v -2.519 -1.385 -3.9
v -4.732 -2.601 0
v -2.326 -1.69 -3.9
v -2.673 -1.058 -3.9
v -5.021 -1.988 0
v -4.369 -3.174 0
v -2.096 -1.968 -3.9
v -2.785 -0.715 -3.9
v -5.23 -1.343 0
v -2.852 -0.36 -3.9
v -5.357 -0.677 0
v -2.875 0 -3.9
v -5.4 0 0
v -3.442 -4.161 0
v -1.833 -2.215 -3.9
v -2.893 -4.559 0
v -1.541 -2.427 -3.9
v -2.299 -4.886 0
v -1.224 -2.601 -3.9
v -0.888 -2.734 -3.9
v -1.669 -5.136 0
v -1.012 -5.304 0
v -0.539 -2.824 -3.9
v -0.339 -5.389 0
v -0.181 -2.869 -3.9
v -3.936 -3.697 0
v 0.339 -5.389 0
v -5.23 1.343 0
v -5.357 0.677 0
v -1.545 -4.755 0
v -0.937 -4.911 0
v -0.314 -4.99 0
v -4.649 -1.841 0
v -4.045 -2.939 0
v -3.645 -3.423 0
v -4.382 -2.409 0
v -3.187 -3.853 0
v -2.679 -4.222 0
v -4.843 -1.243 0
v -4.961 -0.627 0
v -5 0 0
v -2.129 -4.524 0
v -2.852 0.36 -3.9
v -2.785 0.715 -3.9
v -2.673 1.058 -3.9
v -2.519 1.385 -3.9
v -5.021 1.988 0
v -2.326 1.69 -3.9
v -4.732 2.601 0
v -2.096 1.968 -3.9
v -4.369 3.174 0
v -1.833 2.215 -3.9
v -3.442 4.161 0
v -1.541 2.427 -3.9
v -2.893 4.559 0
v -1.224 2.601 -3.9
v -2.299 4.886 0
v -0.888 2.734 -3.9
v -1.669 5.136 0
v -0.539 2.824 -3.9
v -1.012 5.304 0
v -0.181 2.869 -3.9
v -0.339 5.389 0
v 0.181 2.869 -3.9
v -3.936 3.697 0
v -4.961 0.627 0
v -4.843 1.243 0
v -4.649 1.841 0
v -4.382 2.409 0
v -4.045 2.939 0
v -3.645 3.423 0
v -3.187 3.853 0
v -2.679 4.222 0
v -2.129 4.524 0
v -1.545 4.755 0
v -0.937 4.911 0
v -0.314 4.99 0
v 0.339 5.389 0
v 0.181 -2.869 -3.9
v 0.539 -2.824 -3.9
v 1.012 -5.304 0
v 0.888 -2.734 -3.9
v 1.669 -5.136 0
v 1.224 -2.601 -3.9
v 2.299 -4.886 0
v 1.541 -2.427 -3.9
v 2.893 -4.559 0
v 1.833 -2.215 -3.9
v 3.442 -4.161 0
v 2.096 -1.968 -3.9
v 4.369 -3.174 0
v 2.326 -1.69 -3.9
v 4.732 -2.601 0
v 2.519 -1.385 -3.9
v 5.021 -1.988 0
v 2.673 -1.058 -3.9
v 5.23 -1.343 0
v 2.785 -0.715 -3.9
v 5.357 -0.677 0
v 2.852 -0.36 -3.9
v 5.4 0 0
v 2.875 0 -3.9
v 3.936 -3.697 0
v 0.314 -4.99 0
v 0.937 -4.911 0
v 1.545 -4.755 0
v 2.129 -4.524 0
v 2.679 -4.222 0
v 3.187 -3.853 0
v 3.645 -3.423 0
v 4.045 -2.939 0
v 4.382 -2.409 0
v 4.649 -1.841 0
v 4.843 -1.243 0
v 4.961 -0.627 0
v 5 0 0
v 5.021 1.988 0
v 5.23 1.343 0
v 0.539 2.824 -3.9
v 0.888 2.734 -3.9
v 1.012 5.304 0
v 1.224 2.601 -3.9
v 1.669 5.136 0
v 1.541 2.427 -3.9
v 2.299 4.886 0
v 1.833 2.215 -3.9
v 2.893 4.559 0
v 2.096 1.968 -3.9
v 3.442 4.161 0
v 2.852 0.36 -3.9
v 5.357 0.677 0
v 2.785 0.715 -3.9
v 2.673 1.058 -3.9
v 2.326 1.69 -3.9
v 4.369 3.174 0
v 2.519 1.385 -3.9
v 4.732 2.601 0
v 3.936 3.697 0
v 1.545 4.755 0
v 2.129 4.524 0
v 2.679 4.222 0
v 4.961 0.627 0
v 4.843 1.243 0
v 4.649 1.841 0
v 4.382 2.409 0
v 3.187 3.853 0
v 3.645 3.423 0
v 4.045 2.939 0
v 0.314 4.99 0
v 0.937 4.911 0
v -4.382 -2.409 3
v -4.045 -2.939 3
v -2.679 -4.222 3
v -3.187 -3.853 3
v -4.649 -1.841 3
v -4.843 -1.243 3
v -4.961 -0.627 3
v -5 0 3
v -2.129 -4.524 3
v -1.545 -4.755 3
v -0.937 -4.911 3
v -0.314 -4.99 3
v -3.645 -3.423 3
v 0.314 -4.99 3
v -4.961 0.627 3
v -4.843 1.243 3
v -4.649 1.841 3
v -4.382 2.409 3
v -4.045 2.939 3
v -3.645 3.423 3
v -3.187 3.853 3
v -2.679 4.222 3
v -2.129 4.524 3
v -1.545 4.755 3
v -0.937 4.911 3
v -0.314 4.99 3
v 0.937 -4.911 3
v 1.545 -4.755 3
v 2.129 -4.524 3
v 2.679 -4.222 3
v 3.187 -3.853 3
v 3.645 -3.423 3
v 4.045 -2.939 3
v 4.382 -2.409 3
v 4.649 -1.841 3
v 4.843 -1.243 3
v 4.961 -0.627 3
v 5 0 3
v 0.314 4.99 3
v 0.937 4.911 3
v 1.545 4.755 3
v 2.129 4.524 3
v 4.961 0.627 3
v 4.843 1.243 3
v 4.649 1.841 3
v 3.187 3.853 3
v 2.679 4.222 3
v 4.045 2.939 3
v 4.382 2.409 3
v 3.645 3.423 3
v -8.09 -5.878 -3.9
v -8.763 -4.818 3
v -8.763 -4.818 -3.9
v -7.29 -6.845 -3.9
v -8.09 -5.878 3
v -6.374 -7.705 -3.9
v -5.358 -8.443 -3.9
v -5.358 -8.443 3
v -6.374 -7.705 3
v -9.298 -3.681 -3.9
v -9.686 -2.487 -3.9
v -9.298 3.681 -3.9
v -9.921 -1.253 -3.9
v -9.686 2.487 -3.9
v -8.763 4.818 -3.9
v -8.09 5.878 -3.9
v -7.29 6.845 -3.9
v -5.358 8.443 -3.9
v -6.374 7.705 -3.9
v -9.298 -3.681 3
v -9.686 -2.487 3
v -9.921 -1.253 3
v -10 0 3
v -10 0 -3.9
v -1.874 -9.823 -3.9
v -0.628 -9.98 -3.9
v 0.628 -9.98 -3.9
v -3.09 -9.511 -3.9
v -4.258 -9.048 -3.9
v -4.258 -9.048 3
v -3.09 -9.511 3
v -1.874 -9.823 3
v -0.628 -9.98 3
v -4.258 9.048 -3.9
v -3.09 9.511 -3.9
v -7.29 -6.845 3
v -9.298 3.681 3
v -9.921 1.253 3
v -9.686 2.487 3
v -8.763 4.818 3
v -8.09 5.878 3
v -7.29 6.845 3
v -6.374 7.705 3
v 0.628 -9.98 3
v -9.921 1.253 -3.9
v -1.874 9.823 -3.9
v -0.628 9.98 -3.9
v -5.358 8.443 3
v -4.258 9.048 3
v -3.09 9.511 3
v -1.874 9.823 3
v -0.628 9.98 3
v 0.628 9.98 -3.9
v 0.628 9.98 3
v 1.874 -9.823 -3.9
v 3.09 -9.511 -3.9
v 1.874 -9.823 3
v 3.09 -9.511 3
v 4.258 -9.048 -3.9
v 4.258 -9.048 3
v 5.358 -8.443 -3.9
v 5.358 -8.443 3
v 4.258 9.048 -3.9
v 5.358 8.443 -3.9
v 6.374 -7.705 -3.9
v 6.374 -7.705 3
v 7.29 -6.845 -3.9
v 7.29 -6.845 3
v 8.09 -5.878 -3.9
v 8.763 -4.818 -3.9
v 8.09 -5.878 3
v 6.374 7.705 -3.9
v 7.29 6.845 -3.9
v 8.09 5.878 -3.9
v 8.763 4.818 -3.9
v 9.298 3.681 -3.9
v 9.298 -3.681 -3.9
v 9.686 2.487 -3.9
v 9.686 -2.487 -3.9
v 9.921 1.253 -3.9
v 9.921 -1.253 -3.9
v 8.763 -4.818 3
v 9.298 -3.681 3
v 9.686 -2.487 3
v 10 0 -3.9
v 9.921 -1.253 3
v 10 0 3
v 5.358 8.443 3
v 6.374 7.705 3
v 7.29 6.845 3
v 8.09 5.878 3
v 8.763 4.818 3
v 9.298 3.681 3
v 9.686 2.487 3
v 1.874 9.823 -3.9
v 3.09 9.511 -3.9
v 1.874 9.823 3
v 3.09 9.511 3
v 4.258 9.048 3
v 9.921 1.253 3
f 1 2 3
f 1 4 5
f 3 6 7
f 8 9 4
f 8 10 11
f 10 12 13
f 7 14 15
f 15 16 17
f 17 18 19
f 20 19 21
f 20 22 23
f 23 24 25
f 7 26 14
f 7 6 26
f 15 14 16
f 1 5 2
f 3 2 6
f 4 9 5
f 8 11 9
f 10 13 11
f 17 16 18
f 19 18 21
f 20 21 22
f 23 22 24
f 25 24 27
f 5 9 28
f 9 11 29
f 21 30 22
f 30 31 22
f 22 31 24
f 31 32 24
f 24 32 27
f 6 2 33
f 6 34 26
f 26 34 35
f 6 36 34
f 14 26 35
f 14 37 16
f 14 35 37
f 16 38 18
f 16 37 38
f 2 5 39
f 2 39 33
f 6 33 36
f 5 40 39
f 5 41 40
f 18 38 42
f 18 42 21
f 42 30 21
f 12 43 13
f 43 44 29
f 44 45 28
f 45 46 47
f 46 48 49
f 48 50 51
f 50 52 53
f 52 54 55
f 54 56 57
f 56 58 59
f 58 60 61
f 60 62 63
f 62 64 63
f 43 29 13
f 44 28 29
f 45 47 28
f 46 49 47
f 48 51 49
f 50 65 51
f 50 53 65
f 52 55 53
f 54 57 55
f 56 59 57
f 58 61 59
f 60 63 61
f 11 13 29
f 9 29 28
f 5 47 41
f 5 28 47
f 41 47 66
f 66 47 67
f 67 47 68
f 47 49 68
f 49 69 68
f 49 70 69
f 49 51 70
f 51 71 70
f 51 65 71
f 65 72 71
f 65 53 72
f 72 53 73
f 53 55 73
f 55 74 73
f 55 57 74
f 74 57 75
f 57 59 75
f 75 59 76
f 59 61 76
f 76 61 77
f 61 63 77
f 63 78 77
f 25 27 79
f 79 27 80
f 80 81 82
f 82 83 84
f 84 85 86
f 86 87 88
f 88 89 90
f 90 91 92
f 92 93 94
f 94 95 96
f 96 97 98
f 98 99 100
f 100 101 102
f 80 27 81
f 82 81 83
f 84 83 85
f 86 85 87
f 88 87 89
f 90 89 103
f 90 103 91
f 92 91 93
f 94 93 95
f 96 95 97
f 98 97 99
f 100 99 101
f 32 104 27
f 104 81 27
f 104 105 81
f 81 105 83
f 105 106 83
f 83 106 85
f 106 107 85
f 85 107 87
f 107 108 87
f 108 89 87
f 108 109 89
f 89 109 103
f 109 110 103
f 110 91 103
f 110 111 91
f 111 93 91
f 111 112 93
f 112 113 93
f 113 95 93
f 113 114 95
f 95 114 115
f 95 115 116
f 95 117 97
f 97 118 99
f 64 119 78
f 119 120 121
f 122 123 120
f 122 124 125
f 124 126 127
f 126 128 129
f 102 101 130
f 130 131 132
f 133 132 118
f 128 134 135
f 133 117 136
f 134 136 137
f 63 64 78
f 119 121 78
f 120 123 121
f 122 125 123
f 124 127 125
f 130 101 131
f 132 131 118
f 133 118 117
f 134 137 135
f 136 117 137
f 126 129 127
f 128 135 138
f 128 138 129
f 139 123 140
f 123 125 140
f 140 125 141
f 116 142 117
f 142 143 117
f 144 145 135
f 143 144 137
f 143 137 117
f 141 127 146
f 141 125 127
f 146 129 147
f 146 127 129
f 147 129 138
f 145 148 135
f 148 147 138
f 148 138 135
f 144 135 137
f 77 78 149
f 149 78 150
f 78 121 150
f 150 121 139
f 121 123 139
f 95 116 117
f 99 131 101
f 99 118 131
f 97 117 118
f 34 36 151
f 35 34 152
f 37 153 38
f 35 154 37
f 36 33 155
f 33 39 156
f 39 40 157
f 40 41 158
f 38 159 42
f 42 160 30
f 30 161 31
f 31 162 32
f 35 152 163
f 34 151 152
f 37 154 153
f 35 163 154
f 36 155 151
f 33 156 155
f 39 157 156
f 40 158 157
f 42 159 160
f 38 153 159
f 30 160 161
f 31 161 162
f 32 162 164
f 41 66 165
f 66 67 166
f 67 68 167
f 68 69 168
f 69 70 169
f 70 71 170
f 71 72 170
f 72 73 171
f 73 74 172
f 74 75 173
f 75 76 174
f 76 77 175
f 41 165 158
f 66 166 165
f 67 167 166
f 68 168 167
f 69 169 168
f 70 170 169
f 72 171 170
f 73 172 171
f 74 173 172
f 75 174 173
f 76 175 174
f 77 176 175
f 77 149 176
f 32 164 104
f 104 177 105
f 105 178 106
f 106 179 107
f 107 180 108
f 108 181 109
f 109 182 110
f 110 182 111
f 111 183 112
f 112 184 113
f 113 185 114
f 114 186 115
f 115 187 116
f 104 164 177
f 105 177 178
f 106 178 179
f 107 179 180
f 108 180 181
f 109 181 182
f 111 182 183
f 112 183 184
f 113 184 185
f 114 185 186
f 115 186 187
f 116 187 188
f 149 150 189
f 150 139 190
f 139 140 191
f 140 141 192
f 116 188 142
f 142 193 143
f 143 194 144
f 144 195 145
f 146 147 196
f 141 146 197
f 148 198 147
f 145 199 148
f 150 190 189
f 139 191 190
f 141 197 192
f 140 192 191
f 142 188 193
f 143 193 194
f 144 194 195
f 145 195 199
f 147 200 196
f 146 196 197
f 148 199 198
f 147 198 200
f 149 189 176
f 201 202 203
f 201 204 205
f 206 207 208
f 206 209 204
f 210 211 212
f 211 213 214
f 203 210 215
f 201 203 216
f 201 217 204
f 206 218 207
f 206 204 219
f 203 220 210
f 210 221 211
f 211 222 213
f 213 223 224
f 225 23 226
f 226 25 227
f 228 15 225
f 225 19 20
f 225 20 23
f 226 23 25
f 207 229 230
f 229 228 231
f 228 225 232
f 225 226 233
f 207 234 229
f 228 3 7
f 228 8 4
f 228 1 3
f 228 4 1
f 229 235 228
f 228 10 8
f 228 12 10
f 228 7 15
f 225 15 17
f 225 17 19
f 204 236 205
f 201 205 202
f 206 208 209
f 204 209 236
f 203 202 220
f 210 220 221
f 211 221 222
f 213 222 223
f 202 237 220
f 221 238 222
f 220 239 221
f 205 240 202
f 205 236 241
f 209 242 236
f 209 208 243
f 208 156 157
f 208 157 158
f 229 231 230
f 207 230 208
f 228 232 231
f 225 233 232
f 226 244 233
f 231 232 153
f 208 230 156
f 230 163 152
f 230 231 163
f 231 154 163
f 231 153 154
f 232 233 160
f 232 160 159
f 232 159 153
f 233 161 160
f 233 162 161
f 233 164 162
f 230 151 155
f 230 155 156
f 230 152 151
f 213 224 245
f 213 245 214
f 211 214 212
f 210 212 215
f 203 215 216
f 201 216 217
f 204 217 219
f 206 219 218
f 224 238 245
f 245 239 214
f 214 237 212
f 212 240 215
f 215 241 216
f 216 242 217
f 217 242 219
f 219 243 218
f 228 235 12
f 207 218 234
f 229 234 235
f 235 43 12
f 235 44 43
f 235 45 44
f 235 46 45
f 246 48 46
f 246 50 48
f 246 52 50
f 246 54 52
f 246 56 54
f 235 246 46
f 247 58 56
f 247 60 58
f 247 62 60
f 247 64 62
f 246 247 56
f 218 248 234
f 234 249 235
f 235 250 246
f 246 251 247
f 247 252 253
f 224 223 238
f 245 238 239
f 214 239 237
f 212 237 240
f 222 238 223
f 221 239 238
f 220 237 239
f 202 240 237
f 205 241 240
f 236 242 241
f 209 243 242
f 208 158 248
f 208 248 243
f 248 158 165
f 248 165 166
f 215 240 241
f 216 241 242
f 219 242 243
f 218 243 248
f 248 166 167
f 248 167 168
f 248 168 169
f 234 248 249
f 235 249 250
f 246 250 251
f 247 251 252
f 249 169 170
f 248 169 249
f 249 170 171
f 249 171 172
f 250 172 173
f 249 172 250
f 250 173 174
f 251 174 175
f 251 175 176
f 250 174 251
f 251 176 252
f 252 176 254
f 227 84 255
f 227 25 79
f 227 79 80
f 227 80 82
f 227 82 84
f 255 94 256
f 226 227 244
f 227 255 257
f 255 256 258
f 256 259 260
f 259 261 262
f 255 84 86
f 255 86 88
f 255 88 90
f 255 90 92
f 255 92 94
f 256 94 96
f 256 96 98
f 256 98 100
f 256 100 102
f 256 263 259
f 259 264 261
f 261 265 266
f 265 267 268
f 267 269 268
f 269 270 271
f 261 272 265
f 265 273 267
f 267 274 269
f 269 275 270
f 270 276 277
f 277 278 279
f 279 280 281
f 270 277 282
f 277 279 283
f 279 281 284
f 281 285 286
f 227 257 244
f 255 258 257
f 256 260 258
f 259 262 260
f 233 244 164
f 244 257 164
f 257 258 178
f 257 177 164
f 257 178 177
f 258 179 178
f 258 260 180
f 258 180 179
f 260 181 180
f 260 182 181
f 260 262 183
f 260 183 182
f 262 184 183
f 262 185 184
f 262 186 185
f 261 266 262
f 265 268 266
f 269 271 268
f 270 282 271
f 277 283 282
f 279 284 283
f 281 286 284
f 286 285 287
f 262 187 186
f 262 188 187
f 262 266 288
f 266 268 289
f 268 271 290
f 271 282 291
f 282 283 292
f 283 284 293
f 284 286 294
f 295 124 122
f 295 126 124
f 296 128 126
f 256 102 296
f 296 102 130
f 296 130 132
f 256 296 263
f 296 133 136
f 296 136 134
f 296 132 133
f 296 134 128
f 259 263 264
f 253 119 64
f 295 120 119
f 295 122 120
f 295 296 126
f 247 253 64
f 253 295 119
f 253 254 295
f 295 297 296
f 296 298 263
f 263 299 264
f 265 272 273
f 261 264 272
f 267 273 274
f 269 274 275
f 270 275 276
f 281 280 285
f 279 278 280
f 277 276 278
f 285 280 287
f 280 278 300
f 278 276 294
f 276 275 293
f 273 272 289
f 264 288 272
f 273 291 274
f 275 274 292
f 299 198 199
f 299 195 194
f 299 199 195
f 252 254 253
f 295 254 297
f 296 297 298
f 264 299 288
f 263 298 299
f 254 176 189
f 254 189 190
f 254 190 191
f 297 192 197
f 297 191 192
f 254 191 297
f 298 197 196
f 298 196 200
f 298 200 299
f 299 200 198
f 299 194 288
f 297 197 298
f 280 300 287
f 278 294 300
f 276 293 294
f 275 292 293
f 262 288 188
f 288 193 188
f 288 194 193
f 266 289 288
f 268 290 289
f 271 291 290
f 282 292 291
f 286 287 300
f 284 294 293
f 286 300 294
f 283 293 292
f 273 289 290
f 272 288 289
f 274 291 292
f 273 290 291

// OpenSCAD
$fn = 50;

difference() {
	union() {
		translate(v = [0, 0, -3.9000000000000004]) {
			cylinder(h = 6.9, r = 10.0);
		}
	}
	union() {
		translate(v = [0, 0, 0]) {
			rotate(a = [0, 0, 0]) {
				difference() {
					union() {
						translate(v = [0, 0, -6.9]) {
							cylinder(h = 6.9, r = 2.6);
						}
						translate(v = [0, 0, -3.9]) {
							cylinder(h = 3.9, r1 = 2.875, r2 = 5.4);
						}
						translate(v = [0, 0, -6.9]) {
							cylinder(h = 6.9, r = 2.875);
						}
						translate(v = [0, 0, -6.9]) {
							cylinder(h = 6.9, r = 2.6);
						}
					}
					union();
				}
			}
		}
		#cylinder(h = 3, r = 5.0);
	}
}
